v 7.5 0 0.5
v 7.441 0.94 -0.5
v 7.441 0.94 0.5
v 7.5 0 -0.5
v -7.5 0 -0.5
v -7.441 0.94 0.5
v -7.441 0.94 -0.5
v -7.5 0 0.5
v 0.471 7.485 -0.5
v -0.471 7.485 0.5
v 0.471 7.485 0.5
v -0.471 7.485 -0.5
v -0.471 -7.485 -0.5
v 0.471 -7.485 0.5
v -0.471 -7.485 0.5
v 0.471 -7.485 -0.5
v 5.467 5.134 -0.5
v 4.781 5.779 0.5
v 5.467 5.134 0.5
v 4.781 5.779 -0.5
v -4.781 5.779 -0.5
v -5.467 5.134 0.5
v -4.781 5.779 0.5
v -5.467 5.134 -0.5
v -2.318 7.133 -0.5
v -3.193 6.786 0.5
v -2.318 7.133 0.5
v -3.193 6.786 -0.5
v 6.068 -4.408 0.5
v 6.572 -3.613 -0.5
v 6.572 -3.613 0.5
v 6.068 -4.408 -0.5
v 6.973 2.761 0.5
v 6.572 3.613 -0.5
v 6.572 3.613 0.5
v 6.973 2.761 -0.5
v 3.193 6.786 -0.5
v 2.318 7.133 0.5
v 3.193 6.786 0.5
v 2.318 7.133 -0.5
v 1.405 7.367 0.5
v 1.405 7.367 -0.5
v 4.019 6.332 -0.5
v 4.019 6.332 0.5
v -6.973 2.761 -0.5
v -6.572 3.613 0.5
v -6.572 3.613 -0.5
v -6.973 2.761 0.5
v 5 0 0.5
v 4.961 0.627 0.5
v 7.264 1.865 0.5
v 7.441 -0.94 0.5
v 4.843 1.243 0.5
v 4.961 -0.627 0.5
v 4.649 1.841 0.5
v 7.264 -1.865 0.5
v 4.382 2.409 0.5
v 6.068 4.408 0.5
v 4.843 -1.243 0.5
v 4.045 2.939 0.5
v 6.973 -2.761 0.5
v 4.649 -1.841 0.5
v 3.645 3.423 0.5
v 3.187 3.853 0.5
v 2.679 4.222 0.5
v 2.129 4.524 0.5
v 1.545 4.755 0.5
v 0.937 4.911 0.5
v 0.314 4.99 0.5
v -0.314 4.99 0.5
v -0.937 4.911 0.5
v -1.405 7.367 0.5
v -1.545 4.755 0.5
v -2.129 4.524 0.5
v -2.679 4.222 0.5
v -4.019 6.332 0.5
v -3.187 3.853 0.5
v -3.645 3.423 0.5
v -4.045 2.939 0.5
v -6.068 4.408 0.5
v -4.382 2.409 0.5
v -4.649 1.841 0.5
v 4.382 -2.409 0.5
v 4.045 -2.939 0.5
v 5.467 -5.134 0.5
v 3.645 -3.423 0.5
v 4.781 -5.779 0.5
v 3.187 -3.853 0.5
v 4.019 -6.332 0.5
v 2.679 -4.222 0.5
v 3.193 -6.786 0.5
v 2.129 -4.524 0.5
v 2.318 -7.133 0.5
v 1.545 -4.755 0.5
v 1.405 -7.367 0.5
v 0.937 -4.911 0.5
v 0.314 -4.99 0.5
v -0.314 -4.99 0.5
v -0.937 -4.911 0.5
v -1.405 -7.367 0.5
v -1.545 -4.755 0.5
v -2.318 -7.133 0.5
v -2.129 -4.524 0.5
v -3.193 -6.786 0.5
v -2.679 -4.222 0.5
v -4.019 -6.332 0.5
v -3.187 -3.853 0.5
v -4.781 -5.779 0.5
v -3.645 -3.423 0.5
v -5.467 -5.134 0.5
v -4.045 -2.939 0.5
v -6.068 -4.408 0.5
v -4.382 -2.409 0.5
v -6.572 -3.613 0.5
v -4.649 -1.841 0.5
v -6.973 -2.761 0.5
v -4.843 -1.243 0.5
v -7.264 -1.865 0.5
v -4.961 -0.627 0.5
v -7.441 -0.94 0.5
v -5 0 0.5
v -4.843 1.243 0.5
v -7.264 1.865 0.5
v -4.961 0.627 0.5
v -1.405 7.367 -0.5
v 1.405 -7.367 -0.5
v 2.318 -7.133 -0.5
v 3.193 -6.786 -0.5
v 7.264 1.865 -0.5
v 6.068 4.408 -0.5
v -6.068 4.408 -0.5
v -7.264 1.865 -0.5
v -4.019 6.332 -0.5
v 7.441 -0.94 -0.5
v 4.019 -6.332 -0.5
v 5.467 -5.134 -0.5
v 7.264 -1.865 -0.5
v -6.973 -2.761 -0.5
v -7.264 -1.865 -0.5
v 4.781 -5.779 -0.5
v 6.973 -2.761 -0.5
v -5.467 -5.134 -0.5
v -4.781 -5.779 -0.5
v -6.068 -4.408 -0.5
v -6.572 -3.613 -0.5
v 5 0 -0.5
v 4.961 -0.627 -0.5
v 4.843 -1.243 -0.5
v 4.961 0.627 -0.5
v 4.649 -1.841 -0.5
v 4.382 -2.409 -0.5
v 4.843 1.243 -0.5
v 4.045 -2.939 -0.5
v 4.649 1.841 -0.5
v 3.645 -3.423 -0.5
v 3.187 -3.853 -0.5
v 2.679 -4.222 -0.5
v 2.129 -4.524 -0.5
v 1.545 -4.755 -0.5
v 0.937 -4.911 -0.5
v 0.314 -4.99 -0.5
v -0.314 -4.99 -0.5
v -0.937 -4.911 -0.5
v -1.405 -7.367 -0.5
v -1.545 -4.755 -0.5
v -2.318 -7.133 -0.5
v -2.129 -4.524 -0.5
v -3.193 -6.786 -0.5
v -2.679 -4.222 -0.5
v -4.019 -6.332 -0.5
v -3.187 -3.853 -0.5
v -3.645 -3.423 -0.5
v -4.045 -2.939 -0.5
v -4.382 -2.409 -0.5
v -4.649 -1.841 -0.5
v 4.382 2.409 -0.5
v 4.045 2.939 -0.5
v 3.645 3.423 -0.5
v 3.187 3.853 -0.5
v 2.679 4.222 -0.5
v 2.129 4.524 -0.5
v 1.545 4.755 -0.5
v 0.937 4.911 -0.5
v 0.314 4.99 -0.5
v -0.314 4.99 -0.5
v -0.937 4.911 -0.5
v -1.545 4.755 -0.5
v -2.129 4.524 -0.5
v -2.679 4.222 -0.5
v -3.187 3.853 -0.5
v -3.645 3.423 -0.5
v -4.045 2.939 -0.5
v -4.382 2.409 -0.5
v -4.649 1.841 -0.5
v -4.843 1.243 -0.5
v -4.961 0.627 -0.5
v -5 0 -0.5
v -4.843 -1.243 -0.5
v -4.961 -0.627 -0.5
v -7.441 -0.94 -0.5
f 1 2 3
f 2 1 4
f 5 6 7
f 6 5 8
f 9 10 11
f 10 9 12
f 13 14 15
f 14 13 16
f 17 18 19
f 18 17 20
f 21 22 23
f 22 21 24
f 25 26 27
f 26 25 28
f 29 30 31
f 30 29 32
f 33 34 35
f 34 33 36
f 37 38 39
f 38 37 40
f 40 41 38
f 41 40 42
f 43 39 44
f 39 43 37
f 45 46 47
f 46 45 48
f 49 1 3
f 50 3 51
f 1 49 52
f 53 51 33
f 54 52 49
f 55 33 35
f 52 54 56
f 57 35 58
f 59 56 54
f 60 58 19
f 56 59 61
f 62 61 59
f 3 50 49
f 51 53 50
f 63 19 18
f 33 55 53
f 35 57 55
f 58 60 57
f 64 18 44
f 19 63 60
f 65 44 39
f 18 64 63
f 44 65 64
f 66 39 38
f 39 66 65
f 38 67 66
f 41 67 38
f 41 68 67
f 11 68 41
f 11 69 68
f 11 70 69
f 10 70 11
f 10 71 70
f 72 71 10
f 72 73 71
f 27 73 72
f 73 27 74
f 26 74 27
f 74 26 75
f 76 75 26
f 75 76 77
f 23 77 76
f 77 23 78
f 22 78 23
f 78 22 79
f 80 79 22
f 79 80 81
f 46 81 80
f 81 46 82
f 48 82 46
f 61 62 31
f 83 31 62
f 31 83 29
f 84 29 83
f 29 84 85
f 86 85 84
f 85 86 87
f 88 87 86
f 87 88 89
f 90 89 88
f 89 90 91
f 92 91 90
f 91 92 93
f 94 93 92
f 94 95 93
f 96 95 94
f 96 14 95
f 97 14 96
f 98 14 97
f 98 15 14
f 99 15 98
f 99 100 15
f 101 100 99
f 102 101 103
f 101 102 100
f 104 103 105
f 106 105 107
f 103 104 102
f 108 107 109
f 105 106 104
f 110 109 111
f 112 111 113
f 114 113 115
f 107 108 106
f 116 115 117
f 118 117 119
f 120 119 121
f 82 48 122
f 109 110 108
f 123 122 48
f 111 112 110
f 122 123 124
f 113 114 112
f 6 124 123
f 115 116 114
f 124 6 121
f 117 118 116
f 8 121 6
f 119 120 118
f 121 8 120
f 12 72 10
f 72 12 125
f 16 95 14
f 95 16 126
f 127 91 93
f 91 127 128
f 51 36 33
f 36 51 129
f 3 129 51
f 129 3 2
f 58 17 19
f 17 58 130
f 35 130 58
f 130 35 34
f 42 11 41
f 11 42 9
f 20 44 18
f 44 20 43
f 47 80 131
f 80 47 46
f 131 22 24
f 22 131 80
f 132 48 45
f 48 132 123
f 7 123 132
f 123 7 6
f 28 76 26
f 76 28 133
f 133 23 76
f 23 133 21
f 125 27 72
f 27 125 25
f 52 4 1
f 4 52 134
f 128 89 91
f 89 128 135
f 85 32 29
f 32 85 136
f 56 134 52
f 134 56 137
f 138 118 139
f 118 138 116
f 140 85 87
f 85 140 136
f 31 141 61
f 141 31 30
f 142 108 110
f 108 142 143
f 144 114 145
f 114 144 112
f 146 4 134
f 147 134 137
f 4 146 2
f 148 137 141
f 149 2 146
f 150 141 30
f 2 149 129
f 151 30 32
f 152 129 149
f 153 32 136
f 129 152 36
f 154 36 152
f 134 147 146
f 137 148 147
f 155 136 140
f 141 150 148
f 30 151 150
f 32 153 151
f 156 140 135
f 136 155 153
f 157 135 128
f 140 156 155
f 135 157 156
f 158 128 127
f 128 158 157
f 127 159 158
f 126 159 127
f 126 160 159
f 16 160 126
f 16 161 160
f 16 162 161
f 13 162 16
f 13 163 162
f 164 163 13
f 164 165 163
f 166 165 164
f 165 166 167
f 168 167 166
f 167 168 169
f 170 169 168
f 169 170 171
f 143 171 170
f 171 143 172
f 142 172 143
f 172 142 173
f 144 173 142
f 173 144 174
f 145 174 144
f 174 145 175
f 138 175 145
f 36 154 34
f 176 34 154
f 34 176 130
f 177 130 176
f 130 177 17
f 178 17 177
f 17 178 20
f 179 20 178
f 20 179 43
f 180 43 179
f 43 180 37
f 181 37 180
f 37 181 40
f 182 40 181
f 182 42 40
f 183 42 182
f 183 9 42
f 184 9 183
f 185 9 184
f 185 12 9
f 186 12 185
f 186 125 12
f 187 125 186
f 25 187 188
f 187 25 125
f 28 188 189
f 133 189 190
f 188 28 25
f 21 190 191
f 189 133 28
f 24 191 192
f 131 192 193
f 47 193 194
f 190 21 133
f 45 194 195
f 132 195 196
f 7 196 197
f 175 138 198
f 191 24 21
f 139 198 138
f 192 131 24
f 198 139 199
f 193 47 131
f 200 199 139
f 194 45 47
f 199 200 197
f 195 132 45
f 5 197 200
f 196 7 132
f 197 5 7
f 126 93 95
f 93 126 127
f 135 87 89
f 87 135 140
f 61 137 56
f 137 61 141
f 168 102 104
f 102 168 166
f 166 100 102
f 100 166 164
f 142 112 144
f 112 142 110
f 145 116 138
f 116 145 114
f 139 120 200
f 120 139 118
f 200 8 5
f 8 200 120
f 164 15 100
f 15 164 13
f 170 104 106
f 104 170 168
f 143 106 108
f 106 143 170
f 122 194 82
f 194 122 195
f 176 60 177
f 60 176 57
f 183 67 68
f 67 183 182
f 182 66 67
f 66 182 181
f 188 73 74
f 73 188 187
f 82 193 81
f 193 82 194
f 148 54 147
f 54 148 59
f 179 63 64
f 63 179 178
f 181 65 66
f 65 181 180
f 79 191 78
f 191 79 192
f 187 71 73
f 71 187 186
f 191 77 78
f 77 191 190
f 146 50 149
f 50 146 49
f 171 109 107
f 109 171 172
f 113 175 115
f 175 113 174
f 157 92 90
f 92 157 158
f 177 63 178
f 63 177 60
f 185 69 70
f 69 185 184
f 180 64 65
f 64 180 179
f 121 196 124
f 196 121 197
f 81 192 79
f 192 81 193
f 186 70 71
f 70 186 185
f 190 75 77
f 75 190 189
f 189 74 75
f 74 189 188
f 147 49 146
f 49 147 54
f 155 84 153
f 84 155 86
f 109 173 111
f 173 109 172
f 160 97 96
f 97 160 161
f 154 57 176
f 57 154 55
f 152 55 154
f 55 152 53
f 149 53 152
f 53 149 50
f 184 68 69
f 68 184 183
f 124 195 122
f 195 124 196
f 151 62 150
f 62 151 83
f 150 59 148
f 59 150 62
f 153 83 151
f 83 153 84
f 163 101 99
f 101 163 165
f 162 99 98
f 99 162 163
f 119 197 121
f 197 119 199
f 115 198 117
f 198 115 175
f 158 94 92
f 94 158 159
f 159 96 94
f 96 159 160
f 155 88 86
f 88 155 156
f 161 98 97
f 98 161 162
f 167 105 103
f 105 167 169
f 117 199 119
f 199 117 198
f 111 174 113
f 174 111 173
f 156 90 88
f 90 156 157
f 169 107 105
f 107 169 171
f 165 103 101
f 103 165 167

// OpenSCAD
$fn = 50;


difference() {
	union() {
		translate(v = [0, 0, -0.5000000000]) {
			cylinder(h = 1, r = 7.5000000000);
		}
	}
	union() {
		translate(v = [0, 0, -100.0000000000]) {
			cylinder(h = 200, r = 5);
		}
	}
}
